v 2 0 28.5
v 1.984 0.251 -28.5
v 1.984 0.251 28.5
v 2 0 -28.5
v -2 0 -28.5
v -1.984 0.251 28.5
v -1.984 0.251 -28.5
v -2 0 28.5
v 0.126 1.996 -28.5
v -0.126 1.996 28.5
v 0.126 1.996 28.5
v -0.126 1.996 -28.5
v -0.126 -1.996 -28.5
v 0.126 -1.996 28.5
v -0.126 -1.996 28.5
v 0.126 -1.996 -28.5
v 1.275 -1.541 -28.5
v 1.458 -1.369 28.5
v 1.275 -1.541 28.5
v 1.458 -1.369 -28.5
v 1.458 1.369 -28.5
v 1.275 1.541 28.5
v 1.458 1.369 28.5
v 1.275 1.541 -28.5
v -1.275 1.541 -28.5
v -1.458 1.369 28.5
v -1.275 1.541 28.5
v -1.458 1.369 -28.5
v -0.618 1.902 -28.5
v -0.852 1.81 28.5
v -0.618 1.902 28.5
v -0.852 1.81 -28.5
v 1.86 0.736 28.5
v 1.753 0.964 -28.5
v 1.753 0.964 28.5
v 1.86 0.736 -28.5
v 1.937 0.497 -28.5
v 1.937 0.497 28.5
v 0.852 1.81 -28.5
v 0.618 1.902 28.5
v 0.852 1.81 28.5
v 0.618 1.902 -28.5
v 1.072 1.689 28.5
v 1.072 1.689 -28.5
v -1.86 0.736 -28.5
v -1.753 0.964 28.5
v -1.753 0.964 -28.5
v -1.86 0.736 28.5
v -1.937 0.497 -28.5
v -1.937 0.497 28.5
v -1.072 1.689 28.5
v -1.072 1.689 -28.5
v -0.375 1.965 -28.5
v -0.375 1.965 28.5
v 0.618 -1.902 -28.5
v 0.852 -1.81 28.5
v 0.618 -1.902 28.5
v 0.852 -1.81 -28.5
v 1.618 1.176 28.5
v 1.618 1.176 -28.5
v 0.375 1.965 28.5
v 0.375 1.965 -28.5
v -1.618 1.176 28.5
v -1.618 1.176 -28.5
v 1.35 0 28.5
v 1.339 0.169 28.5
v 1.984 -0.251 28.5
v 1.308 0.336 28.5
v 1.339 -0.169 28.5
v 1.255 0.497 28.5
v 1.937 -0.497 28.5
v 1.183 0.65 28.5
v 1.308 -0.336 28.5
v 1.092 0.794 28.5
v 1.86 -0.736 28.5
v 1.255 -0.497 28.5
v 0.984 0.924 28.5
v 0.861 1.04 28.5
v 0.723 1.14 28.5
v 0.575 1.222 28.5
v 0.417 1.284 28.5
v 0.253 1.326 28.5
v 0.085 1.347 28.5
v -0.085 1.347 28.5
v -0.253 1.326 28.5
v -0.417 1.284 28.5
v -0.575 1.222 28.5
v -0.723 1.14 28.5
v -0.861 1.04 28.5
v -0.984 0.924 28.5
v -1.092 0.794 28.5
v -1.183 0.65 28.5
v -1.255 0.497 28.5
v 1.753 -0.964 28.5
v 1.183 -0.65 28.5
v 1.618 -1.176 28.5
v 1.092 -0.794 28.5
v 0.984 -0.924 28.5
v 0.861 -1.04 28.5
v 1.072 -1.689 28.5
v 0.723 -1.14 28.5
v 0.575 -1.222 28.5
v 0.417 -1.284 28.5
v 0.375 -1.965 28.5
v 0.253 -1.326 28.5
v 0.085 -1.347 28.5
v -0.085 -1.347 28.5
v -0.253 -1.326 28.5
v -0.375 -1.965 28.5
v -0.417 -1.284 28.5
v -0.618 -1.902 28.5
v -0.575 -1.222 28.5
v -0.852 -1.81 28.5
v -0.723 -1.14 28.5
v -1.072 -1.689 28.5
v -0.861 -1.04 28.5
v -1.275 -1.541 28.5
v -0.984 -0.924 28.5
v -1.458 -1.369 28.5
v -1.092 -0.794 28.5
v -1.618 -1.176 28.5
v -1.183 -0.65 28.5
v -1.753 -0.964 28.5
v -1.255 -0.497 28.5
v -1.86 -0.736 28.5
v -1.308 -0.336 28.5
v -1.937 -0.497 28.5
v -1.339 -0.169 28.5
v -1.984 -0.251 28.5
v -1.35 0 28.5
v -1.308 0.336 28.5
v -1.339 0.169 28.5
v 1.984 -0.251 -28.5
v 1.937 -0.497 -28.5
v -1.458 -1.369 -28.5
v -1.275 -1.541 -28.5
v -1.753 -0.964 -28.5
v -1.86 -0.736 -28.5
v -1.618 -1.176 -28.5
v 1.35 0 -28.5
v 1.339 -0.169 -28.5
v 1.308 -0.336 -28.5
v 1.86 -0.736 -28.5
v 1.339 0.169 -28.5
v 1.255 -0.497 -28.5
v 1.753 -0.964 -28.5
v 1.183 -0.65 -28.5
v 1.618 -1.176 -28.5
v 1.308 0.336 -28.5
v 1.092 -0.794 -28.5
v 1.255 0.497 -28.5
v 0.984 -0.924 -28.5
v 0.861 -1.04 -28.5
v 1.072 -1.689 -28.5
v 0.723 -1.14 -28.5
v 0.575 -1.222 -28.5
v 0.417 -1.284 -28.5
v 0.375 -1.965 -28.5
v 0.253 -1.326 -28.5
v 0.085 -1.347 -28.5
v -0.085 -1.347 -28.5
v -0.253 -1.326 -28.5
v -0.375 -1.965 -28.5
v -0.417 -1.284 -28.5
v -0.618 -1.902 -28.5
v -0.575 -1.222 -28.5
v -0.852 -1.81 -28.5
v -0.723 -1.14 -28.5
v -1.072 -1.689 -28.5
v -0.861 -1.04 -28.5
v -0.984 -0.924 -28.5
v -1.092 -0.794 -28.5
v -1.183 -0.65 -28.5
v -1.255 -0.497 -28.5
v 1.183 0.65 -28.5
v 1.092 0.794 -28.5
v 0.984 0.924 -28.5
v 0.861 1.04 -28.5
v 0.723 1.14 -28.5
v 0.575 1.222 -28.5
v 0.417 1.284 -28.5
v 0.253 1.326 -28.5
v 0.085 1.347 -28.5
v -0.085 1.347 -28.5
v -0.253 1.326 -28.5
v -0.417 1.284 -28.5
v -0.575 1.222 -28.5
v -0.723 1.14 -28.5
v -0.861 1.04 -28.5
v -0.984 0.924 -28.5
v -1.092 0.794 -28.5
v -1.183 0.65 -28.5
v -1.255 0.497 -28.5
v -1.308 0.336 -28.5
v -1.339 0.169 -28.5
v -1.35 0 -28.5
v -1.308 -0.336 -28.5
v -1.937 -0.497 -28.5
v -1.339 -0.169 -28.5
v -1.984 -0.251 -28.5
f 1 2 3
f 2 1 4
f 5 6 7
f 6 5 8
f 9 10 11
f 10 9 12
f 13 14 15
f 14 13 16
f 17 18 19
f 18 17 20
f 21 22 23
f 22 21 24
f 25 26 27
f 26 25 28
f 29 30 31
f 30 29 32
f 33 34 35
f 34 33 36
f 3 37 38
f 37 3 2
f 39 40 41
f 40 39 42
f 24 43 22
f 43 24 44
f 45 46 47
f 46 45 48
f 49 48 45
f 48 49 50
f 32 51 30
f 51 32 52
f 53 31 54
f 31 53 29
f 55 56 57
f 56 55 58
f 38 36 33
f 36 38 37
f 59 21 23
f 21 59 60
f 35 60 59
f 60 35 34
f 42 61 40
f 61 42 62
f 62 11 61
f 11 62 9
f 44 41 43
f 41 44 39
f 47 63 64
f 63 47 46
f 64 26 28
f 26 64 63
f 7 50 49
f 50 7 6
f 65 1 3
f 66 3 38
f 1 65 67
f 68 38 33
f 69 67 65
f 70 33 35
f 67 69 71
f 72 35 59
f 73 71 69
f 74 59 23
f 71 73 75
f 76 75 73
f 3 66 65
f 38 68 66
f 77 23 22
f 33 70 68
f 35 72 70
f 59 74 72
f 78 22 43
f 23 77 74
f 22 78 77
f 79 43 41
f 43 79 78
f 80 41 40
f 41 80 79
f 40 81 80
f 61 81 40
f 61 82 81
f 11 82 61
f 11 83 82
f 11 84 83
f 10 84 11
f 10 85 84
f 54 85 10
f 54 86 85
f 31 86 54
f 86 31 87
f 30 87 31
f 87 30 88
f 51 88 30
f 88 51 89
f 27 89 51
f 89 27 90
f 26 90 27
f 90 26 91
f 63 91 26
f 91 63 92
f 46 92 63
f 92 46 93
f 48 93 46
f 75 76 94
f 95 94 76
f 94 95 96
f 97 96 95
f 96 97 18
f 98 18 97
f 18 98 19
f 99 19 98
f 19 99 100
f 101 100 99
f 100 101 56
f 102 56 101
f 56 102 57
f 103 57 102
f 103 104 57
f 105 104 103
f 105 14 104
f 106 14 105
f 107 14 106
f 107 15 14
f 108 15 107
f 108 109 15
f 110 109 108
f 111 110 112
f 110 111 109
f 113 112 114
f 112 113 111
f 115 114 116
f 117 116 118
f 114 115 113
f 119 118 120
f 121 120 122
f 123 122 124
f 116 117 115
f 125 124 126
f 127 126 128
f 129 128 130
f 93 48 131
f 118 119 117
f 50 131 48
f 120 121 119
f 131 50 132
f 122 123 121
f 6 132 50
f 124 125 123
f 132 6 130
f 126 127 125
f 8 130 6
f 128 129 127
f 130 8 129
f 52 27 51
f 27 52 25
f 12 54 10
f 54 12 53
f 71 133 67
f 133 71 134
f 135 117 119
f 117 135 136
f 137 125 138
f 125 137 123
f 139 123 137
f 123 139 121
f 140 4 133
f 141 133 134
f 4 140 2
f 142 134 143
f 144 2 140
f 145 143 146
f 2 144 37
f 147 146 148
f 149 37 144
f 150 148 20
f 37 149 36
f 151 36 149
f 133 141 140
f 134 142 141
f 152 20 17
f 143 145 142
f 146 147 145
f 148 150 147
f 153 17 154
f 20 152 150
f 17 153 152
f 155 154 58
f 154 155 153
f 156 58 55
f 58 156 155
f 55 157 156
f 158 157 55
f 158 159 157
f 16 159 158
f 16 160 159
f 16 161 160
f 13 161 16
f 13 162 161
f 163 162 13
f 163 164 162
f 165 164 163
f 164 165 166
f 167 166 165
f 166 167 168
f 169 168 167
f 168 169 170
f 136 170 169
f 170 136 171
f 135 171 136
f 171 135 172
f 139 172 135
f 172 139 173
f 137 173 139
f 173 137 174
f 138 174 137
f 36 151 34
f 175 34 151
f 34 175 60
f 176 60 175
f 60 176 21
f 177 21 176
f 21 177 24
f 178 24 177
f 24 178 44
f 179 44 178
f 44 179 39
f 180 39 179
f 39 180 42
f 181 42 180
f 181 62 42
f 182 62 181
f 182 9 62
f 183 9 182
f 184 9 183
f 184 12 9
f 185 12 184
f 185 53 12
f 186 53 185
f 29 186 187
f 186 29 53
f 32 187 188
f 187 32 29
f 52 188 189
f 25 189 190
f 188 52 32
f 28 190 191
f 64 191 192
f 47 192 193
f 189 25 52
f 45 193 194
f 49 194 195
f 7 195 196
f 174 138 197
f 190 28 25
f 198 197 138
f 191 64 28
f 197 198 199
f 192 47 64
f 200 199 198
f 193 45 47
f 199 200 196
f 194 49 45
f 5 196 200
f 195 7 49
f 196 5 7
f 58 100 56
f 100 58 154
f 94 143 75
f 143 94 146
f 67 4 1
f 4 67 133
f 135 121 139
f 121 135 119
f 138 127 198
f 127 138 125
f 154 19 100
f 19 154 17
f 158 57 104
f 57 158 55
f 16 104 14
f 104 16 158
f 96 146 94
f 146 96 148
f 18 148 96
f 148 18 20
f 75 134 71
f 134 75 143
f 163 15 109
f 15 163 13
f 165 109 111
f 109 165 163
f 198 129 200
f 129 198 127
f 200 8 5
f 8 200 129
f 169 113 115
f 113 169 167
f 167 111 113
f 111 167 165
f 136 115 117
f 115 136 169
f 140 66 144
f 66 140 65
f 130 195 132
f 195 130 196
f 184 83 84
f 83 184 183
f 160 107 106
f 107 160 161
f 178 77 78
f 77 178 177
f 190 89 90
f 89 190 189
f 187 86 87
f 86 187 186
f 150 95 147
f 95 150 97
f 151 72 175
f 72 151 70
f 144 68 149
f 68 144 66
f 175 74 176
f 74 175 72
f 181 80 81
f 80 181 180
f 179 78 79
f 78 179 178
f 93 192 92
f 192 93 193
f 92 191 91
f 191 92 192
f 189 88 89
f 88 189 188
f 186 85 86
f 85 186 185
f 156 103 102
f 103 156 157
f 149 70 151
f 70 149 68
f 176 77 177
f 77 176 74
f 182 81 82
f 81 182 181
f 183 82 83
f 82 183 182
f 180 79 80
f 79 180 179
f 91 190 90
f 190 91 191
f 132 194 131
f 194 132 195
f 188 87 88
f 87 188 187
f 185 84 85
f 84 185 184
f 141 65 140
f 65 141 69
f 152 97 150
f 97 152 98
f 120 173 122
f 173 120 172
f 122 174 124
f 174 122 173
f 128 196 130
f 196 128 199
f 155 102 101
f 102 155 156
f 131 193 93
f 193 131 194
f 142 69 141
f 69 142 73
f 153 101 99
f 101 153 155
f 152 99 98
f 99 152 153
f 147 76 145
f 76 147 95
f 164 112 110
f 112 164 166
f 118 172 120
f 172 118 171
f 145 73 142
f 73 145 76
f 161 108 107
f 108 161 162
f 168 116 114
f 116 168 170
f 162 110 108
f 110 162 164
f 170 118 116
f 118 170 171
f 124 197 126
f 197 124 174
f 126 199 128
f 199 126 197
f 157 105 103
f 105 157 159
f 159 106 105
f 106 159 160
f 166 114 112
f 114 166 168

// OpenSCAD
$fn = 50;


difference() {
	union() {
		translate(v = [0, 0, -28.5000000000]) {
			cylinder(h = 57, r = 2.0000000000);
		}
	}
	union() {
		translate(v = [0, 0, -100.0000000000]) {
			cylinder(h = 200, r = 1.3500000000);
		}
	}
}
